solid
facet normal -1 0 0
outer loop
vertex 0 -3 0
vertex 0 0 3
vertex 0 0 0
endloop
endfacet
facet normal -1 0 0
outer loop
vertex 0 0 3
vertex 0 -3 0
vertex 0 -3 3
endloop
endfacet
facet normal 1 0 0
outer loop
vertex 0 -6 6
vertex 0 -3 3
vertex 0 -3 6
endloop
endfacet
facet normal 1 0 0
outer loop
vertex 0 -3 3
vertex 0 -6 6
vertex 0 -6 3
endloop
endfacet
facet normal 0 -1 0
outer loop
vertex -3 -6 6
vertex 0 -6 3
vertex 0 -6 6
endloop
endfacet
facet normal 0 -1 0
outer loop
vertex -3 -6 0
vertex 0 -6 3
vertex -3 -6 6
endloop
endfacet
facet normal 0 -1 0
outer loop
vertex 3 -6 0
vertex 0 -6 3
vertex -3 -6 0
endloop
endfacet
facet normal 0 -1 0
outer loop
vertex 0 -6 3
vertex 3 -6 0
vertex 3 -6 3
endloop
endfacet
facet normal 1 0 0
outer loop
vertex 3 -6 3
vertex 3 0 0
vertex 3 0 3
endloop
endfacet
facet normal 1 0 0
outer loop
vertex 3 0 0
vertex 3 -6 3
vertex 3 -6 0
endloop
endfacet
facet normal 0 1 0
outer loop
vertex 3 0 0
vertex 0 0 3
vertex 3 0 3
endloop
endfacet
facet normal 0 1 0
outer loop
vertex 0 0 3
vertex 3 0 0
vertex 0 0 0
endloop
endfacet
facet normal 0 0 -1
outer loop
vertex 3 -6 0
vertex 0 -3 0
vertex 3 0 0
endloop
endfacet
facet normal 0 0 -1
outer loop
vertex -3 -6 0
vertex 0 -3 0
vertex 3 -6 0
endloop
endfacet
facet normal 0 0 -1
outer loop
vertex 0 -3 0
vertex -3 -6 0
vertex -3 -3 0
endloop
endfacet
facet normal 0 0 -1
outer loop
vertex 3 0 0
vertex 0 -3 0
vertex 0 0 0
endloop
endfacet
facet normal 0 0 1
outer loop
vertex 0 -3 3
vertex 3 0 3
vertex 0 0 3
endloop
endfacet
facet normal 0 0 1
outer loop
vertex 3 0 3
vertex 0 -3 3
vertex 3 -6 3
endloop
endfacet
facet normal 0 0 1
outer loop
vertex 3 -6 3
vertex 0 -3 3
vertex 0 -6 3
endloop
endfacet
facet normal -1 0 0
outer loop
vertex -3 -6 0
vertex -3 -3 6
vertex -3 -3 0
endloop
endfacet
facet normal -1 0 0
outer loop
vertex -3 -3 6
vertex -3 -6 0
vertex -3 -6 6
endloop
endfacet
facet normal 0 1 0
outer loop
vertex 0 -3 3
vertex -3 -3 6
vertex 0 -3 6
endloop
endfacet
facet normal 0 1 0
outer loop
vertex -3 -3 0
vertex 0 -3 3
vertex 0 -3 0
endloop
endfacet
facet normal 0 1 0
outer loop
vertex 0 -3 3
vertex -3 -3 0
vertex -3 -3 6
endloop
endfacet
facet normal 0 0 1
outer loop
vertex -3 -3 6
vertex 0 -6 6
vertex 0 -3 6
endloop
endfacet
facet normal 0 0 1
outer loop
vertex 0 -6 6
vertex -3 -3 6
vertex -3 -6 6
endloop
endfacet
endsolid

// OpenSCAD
module bausteinlinks(){
    union(){
        cube([3,3,6]);
        translate([-3,0,3])
            cube([3,6,3]);
        }
}
rotate([90,0,0])
    bausteinlinks();
